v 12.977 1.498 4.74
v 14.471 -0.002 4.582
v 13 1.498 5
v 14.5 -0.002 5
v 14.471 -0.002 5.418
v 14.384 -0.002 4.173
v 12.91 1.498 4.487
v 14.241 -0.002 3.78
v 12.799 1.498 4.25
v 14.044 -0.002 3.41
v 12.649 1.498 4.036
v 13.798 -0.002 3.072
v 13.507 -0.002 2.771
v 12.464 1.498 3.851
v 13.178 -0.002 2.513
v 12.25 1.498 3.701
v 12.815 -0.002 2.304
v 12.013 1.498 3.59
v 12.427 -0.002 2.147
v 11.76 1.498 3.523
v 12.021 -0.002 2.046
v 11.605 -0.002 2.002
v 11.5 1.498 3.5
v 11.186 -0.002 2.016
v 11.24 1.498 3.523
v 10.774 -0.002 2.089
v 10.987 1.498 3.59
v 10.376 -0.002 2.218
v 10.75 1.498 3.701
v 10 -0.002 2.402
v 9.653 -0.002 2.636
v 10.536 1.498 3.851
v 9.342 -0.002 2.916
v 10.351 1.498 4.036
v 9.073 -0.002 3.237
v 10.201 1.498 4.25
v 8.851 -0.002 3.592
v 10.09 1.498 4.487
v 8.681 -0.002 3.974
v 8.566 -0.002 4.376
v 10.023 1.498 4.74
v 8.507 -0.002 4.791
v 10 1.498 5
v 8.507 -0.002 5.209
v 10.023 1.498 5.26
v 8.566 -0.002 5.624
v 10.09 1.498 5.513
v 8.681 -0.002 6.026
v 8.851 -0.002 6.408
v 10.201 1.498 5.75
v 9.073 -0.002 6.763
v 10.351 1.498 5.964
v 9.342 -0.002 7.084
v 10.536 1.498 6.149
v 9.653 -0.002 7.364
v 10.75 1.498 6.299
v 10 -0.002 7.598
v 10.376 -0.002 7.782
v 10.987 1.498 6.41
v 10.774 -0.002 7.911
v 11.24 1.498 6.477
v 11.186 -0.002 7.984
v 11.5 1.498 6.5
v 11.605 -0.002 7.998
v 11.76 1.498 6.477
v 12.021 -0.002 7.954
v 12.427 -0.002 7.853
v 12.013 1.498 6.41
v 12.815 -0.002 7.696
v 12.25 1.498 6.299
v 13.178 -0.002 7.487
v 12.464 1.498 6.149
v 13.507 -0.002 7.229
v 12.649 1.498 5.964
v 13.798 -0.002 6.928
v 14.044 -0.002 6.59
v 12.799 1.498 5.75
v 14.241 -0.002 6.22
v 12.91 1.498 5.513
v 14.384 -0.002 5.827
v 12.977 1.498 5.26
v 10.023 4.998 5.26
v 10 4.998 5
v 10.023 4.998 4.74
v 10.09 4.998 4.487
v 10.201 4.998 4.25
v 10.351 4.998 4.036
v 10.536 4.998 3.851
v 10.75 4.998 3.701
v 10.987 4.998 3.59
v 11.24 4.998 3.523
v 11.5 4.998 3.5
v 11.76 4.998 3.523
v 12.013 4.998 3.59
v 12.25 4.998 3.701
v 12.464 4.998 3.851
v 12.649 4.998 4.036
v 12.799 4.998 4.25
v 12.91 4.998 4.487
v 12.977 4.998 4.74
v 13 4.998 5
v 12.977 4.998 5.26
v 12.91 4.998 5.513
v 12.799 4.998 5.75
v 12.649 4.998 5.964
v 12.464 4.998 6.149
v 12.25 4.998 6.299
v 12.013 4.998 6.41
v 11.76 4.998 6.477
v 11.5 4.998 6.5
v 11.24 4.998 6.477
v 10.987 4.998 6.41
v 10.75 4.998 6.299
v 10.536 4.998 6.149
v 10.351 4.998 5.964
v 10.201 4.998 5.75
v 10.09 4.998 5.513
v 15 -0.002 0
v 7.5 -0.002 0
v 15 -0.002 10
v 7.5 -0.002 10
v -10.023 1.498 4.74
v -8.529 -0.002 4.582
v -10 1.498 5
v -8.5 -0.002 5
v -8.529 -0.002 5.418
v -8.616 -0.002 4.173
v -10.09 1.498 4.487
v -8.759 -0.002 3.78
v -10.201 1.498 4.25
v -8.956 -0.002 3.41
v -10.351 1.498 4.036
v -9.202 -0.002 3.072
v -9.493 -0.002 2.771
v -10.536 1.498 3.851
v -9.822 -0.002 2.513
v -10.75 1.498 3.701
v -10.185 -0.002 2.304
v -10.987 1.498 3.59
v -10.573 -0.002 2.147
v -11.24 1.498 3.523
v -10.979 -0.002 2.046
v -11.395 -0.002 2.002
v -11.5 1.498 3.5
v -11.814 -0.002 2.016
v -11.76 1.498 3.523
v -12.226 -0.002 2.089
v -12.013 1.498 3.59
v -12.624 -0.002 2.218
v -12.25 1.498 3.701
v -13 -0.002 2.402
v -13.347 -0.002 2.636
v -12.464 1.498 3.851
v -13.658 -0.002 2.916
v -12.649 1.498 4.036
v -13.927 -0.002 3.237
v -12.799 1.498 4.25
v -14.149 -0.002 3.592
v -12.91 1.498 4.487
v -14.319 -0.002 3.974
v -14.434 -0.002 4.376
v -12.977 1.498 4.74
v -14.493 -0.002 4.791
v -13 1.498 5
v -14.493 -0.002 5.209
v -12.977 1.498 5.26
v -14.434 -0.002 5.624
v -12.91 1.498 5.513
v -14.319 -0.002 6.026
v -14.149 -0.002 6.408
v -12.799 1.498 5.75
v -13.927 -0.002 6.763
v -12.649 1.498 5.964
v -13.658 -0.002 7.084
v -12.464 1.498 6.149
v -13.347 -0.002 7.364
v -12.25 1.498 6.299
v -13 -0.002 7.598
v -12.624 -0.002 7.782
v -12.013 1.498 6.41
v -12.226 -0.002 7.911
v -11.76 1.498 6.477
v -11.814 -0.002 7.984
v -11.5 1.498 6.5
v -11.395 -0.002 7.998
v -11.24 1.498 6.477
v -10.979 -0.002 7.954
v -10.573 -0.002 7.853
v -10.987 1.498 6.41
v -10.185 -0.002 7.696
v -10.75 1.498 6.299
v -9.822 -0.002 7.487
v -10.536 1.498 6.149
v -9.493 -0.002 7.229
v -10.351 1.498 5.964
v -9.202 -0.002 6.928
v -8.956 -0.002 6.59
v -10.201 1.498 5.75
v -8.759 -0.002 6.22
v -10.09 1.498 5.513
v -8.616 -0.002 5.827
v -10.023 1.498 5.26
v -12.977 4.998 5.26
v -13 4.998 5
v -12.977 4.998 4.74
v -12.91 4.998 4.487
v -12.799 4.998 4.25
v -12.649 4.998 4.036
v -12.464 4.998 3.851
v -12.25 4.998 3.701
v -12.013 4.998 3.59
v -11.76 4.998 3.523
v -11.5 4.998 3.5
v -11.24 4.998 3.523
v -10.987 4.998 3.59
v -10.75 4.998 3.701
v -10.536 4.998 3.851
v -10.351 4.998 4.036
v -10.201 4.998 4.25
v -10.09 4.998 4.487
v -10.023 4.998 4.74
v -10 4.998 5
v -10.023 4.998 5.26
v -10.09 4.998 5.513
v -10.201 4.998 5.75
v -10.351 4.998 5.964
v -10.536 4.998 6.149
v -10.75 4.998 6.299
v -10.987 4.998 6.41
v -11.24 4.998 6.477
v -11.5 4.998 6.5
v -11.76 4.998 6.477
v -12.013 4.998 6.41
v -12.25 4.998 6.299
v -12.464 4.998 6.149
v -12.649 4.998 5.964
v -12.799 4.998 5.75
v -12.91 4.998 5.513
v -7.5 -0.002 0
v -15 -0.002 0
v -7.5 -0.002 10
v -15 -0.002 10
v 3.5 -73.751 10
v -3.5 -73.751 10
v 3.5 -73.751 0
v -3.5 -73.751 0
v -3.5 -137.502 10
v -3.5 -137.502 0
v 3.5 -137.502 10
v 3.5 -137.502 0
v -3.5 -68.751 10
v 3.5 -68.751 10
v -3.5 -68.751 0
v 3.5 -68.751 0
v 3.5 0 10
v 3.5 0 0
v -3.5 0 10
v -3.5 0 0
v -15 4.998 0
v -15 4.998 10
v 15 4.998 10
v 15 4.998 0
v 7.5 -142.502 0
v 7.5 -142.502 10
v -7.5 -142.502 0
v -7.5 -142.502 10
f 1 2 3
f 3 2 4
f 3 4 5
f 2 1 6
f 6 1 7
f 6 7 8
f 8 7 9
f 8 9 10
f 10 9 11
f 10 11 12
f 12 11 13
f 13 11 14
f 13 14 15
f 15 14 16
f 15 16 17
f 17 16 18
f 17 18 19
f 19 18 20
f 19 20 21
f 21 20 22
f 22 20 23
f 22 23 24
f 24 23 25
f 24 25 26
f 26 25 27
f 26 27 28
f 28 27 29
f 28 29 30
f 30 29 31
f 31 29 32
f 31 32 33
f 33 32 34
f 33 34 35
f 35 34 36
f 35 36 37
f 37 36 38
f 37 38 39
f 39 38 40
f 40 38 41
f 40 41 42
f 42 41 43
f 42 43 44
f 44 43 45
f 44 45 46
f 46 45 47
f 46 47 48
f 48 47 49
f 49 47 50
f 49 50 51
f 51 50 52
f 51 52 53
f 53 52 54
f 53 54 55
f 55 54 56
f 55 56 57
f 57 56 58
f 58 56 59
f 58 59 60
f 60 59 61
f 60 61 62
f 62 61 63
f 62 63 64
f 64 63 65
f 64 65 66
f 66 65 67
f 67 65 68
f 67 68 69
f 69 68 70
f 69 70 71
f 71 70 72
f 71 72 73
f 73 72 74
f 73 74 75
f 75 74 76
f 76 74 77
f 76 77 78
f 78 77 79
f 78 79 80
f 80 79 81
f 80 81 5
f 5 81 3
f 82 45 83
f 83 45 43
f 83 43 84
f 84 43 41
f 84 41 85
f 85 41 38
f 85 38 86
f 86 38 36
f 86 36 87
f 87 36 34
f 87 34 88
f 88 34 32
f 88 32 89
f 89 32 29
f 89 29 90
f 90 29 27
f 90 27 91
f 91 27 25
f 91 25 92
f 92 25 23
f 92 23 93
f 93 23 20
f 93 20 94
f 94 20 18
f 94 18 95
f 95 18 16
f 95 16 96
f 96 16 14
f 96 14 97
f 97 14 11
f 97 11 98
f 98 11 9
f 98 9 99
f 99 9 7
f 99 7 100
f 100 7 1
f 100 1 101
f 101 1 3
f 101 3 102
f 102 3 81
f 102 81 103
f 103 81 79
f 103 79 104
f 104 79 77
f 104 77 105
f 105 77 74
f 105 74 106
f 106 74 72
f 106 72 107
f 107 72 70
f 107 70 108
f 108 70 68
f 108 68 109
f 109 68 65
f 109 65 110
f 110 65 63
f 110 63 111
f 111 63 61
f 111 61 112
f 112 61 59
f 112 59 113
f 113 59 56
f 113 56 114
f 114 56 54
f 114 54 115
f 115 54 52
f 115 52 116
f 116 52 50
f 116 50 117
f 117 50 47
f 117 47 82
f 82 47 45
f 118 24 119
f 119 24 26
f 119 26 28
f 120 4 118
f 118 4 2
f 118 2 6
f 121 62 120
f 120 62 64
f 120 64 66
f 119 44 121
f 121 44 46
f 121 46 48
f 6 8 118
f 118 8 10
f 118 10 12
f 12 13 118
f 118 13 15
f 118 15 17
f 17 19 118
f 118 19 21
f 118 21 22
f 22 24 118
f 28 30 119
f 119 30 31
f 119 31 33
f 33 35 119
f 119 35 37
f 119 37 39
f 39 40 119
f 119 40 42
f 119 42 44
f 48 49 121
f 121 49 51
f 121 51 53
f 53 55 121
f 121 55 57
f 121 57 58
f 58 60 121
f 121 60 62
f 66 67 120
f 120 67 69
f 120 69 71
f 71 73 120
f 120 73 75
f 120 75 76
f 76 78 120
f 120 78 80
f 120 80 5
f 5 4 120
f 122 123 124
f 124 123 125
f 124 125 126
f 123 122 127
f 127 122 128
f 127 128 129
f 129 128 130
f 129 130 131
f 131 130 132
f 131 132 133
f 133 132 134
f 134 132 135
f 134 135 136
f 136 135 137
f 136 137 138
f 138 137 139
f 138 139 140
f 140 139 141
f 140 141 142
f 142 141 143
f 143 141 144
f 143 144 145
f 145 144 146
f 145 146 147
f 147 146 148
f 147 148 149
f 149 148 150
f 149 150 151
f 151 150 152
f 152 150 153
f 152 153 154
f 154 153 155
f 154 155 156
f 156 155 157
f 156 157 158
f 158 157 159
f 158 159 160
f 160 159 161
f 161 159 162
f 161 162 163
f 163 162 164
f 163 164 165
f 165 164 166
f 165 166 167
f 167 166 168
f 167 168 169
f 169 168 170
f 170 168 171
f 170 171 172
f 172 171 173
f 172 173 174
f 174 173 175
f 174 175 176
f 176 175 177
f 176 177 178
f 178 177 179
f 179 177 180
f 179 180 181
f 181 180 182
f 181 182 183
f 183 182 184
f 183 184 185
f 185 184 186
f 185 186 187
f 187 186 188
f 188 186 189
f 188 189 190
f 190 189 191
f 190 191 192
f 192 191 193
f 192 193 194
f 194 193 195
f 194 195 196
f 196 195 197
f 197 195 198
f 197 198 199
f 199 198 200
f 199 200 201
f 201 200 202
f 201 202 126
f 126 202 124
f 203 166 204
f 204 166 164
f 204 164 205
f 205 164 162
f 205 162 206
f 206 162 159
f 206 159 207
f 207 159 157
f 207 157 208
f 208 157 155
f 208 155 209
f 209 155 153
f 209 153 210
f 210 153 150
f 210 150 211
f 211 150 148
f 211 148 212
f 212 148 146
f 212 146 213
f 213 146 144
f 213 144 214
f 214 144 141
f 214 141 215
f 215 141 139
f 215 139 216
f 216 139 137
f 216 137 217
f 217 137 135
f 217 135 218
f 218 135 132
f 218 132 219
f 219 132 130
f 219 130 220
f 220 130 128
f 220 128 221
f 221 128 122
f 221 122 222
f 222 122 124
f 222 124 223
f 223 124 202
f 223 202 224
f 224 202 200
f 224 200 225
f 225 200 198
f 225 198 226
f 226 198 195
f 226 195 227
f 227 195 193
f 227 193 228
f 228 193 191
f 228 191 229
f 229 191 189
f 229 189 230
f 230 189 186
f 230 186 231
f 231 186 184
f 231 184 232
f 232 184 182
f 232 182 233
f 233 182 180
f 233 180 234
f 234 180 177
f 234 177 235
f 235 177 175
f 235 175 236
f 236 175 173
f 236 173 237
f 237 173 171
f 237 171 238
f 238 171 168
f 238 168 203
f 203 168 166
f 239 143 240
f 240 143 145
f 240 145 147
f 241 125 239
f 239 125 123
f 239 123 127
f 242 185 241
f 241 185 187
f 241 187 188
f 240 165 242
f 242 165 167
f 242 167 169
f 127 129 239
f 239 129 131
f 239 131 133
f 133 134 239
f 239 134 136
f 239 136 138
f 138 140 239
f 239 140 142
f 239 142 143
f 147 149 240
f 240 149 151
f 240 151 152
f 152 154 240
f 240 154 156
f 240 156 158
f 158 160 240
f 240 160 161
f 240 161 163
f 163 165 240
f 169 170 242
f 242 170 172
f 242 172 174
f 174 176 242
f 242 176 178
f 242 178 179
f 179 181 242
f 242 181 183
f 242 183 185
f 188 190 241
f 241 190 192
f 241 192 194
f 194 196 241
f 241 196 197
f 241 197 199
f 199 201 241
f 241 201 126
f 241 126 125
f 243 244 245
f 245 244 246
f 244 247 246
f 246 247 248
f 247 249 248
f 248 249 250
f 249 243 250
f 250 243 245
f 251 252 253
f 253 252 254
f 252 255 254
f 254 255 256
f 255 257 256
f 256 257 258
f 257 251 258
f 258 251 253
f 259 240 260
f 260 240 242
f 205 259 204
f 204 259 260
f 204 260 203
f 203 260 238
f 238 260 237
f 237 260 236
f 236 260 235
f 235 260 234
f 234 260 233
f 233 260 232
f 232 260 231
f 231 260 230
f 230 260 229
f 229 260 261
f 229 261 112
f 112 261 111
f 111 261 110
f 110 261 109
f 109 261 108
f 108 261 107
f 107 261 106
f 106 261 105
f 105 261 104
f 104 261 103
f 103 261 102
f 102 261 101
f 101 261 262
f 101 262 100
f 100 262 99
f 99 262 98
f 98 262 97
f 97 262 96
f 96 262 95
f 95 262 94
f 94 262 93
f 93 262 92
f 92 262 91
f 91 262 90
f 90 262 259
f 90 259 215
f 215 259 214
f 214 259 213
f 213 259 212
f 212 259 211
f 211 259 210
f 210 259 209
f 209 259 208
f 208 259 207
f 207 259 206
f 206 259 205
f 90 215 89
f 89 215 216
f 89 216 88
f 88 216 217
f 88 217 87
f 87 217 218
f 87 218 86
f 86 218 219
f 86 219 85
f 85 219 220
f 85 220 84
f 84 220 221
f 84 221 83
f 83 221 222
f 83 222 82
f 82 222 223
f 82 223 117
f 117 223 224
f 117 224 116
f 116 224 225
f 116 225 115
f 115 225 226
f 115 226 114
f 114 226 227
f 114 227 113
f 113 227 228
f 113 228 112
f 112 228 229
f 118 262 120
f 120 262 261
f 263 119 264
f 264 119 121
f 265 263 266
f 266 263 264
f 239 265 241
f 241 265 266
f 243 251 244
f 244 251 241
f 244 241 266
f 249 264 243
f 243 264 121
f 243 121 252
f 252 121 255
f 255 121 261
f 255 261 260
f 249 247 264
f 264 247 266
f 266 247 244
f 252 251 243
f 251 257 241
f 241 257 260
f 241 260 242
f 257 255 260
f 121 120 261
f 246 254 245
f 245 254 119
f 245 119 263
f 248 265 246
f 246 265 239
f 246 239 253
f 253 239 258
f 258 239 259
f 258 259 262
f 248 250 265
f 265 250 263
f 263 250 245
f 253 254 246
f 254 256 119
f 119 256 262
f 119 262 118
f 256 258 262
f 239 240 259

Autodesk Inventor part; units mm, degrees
ref_plane "YZ Plane" through (0, 0, 0) normal (1, 0, 0) x (0, 1, 0)
ref_plane "XZ Plane" through (0, 0, 0) normal (0, 1, 0) x (-1, 0, 0)
ref_plane "XY Plane" through (0, 0, 0) normal (0, 0, 1) x (1, 0, 0)
sketch "Sketch1" plane through (0, 0, 0) normal (0, 0, 1) x (1, 0, 0)
  line L0 (-15, -0.0024) -> (15, -0.0024)
  line L1 (15, -0.0024) -> (15, 4.9976)
  line L2 (15, 4.9976) -> (-15, 4.9976)
  line L3 (-15, 4.9976) -> (-15, -0.0024)
  line L4 (-7.5, -0.0024) -> (7.5, -0.0024)
  line L5 (7.5, -0.0024) -> (7.5, -142.5024)
  line L6 (7.5, -142.5024) -> (-7.5, -142.5024)
  line L7 (-7.5, -142.5024) -> (-7.5, -0.0024)
  point P0 (0, 0)
  point P1 (0, -0.0024)
  point P2 (7.5, -0.0024)
  dimension "d0" = 5
  dimension "d1" = 147.5
  dimension "d3" = 7.5
  dimension "d5" = 30
  dimension "d6" = 15
  dimension "d7" = 7.5
extrude "Extrusion1" add sketch "Sketch1" along normal blind 10
sketch "Sketch2" plane through (0, 0, 10) normal (0, 0, 1) x (1, 0, 0)
  line L0 (-3.5, 0) -> (3.5, 0)
  line L1 (3.5, 0) -> (3.5, -137.5024)
  line L2 (3.5, -137.5024) -> (-3.5, -137.5024)
  line L3 (-3.5, -137.5024) -> (-3.5, 0)
  line L4 (-7.5, -0.0024) -> (-7.5, -142.5024) projected
  line L5 (7.5, -142.5024) -> (7.5, -0.0024) projected
  line L6 (-7.5, -142.5024) -> (7.5, -142.5024) projected
  line L7 (-3.5, -68.7512) -> (3.5, -68.7512)
  line L8 (3.5, -68.7512) -> (3.5, -73.7512)
  line L9 (3.5, -73.7512) -> (-3.5, -73.7512)
  line L10 (-3.5, -73.7512) -> (-3.5, -68.7512)
  point P0 (0, 0)
  point P1 (3.5, -68.7512)
  dimension "d10" = 4
  dimension "d11" = 4
  dimension "d12" = 5
  dimension "d13" = 5
extrude "Extrusion2" cut sketch "Sketch2" against normal blind 10 contours L0 L1 L7 L3 | L9 L1 L2 L3
sketch "Sketch3" plane through (7.5, -0.0024, 0) normal (0, -1, 0) x (1, 0, 0)
  circle A0 centre (4, 5) radius 1.5
  circle A1 centre (-19, 5) radius 1.5
  line L0 (7.5, 0) -> (7.5, 10) projected
  line L1 (0, 10) -> (7.5, 10) projected
  line L2 (-22.5, 10) -> (-15, 10) projected
  line L3 (-22.5, 0) -> (-22.5, 10) projected
  point P0 (-7.5, 0)
  point P1 (-18.75, 10)
  dimension "d16" = 3.5
  dimension "d17" = 5
  dimension "d19" = 5
  dimension "d20" = 3.5
  dimension "d21" = 3
  dimension "d22" = 3
extrude "Extrusion3" cut sketch "Sketch3" against normal blind 10
chamfer "Chamfer1" distance 1.5 angle 45 2 edges at (-13, -0.0024, 5) (10, -0.0024, 5)
properties part number "CenterSupport"
